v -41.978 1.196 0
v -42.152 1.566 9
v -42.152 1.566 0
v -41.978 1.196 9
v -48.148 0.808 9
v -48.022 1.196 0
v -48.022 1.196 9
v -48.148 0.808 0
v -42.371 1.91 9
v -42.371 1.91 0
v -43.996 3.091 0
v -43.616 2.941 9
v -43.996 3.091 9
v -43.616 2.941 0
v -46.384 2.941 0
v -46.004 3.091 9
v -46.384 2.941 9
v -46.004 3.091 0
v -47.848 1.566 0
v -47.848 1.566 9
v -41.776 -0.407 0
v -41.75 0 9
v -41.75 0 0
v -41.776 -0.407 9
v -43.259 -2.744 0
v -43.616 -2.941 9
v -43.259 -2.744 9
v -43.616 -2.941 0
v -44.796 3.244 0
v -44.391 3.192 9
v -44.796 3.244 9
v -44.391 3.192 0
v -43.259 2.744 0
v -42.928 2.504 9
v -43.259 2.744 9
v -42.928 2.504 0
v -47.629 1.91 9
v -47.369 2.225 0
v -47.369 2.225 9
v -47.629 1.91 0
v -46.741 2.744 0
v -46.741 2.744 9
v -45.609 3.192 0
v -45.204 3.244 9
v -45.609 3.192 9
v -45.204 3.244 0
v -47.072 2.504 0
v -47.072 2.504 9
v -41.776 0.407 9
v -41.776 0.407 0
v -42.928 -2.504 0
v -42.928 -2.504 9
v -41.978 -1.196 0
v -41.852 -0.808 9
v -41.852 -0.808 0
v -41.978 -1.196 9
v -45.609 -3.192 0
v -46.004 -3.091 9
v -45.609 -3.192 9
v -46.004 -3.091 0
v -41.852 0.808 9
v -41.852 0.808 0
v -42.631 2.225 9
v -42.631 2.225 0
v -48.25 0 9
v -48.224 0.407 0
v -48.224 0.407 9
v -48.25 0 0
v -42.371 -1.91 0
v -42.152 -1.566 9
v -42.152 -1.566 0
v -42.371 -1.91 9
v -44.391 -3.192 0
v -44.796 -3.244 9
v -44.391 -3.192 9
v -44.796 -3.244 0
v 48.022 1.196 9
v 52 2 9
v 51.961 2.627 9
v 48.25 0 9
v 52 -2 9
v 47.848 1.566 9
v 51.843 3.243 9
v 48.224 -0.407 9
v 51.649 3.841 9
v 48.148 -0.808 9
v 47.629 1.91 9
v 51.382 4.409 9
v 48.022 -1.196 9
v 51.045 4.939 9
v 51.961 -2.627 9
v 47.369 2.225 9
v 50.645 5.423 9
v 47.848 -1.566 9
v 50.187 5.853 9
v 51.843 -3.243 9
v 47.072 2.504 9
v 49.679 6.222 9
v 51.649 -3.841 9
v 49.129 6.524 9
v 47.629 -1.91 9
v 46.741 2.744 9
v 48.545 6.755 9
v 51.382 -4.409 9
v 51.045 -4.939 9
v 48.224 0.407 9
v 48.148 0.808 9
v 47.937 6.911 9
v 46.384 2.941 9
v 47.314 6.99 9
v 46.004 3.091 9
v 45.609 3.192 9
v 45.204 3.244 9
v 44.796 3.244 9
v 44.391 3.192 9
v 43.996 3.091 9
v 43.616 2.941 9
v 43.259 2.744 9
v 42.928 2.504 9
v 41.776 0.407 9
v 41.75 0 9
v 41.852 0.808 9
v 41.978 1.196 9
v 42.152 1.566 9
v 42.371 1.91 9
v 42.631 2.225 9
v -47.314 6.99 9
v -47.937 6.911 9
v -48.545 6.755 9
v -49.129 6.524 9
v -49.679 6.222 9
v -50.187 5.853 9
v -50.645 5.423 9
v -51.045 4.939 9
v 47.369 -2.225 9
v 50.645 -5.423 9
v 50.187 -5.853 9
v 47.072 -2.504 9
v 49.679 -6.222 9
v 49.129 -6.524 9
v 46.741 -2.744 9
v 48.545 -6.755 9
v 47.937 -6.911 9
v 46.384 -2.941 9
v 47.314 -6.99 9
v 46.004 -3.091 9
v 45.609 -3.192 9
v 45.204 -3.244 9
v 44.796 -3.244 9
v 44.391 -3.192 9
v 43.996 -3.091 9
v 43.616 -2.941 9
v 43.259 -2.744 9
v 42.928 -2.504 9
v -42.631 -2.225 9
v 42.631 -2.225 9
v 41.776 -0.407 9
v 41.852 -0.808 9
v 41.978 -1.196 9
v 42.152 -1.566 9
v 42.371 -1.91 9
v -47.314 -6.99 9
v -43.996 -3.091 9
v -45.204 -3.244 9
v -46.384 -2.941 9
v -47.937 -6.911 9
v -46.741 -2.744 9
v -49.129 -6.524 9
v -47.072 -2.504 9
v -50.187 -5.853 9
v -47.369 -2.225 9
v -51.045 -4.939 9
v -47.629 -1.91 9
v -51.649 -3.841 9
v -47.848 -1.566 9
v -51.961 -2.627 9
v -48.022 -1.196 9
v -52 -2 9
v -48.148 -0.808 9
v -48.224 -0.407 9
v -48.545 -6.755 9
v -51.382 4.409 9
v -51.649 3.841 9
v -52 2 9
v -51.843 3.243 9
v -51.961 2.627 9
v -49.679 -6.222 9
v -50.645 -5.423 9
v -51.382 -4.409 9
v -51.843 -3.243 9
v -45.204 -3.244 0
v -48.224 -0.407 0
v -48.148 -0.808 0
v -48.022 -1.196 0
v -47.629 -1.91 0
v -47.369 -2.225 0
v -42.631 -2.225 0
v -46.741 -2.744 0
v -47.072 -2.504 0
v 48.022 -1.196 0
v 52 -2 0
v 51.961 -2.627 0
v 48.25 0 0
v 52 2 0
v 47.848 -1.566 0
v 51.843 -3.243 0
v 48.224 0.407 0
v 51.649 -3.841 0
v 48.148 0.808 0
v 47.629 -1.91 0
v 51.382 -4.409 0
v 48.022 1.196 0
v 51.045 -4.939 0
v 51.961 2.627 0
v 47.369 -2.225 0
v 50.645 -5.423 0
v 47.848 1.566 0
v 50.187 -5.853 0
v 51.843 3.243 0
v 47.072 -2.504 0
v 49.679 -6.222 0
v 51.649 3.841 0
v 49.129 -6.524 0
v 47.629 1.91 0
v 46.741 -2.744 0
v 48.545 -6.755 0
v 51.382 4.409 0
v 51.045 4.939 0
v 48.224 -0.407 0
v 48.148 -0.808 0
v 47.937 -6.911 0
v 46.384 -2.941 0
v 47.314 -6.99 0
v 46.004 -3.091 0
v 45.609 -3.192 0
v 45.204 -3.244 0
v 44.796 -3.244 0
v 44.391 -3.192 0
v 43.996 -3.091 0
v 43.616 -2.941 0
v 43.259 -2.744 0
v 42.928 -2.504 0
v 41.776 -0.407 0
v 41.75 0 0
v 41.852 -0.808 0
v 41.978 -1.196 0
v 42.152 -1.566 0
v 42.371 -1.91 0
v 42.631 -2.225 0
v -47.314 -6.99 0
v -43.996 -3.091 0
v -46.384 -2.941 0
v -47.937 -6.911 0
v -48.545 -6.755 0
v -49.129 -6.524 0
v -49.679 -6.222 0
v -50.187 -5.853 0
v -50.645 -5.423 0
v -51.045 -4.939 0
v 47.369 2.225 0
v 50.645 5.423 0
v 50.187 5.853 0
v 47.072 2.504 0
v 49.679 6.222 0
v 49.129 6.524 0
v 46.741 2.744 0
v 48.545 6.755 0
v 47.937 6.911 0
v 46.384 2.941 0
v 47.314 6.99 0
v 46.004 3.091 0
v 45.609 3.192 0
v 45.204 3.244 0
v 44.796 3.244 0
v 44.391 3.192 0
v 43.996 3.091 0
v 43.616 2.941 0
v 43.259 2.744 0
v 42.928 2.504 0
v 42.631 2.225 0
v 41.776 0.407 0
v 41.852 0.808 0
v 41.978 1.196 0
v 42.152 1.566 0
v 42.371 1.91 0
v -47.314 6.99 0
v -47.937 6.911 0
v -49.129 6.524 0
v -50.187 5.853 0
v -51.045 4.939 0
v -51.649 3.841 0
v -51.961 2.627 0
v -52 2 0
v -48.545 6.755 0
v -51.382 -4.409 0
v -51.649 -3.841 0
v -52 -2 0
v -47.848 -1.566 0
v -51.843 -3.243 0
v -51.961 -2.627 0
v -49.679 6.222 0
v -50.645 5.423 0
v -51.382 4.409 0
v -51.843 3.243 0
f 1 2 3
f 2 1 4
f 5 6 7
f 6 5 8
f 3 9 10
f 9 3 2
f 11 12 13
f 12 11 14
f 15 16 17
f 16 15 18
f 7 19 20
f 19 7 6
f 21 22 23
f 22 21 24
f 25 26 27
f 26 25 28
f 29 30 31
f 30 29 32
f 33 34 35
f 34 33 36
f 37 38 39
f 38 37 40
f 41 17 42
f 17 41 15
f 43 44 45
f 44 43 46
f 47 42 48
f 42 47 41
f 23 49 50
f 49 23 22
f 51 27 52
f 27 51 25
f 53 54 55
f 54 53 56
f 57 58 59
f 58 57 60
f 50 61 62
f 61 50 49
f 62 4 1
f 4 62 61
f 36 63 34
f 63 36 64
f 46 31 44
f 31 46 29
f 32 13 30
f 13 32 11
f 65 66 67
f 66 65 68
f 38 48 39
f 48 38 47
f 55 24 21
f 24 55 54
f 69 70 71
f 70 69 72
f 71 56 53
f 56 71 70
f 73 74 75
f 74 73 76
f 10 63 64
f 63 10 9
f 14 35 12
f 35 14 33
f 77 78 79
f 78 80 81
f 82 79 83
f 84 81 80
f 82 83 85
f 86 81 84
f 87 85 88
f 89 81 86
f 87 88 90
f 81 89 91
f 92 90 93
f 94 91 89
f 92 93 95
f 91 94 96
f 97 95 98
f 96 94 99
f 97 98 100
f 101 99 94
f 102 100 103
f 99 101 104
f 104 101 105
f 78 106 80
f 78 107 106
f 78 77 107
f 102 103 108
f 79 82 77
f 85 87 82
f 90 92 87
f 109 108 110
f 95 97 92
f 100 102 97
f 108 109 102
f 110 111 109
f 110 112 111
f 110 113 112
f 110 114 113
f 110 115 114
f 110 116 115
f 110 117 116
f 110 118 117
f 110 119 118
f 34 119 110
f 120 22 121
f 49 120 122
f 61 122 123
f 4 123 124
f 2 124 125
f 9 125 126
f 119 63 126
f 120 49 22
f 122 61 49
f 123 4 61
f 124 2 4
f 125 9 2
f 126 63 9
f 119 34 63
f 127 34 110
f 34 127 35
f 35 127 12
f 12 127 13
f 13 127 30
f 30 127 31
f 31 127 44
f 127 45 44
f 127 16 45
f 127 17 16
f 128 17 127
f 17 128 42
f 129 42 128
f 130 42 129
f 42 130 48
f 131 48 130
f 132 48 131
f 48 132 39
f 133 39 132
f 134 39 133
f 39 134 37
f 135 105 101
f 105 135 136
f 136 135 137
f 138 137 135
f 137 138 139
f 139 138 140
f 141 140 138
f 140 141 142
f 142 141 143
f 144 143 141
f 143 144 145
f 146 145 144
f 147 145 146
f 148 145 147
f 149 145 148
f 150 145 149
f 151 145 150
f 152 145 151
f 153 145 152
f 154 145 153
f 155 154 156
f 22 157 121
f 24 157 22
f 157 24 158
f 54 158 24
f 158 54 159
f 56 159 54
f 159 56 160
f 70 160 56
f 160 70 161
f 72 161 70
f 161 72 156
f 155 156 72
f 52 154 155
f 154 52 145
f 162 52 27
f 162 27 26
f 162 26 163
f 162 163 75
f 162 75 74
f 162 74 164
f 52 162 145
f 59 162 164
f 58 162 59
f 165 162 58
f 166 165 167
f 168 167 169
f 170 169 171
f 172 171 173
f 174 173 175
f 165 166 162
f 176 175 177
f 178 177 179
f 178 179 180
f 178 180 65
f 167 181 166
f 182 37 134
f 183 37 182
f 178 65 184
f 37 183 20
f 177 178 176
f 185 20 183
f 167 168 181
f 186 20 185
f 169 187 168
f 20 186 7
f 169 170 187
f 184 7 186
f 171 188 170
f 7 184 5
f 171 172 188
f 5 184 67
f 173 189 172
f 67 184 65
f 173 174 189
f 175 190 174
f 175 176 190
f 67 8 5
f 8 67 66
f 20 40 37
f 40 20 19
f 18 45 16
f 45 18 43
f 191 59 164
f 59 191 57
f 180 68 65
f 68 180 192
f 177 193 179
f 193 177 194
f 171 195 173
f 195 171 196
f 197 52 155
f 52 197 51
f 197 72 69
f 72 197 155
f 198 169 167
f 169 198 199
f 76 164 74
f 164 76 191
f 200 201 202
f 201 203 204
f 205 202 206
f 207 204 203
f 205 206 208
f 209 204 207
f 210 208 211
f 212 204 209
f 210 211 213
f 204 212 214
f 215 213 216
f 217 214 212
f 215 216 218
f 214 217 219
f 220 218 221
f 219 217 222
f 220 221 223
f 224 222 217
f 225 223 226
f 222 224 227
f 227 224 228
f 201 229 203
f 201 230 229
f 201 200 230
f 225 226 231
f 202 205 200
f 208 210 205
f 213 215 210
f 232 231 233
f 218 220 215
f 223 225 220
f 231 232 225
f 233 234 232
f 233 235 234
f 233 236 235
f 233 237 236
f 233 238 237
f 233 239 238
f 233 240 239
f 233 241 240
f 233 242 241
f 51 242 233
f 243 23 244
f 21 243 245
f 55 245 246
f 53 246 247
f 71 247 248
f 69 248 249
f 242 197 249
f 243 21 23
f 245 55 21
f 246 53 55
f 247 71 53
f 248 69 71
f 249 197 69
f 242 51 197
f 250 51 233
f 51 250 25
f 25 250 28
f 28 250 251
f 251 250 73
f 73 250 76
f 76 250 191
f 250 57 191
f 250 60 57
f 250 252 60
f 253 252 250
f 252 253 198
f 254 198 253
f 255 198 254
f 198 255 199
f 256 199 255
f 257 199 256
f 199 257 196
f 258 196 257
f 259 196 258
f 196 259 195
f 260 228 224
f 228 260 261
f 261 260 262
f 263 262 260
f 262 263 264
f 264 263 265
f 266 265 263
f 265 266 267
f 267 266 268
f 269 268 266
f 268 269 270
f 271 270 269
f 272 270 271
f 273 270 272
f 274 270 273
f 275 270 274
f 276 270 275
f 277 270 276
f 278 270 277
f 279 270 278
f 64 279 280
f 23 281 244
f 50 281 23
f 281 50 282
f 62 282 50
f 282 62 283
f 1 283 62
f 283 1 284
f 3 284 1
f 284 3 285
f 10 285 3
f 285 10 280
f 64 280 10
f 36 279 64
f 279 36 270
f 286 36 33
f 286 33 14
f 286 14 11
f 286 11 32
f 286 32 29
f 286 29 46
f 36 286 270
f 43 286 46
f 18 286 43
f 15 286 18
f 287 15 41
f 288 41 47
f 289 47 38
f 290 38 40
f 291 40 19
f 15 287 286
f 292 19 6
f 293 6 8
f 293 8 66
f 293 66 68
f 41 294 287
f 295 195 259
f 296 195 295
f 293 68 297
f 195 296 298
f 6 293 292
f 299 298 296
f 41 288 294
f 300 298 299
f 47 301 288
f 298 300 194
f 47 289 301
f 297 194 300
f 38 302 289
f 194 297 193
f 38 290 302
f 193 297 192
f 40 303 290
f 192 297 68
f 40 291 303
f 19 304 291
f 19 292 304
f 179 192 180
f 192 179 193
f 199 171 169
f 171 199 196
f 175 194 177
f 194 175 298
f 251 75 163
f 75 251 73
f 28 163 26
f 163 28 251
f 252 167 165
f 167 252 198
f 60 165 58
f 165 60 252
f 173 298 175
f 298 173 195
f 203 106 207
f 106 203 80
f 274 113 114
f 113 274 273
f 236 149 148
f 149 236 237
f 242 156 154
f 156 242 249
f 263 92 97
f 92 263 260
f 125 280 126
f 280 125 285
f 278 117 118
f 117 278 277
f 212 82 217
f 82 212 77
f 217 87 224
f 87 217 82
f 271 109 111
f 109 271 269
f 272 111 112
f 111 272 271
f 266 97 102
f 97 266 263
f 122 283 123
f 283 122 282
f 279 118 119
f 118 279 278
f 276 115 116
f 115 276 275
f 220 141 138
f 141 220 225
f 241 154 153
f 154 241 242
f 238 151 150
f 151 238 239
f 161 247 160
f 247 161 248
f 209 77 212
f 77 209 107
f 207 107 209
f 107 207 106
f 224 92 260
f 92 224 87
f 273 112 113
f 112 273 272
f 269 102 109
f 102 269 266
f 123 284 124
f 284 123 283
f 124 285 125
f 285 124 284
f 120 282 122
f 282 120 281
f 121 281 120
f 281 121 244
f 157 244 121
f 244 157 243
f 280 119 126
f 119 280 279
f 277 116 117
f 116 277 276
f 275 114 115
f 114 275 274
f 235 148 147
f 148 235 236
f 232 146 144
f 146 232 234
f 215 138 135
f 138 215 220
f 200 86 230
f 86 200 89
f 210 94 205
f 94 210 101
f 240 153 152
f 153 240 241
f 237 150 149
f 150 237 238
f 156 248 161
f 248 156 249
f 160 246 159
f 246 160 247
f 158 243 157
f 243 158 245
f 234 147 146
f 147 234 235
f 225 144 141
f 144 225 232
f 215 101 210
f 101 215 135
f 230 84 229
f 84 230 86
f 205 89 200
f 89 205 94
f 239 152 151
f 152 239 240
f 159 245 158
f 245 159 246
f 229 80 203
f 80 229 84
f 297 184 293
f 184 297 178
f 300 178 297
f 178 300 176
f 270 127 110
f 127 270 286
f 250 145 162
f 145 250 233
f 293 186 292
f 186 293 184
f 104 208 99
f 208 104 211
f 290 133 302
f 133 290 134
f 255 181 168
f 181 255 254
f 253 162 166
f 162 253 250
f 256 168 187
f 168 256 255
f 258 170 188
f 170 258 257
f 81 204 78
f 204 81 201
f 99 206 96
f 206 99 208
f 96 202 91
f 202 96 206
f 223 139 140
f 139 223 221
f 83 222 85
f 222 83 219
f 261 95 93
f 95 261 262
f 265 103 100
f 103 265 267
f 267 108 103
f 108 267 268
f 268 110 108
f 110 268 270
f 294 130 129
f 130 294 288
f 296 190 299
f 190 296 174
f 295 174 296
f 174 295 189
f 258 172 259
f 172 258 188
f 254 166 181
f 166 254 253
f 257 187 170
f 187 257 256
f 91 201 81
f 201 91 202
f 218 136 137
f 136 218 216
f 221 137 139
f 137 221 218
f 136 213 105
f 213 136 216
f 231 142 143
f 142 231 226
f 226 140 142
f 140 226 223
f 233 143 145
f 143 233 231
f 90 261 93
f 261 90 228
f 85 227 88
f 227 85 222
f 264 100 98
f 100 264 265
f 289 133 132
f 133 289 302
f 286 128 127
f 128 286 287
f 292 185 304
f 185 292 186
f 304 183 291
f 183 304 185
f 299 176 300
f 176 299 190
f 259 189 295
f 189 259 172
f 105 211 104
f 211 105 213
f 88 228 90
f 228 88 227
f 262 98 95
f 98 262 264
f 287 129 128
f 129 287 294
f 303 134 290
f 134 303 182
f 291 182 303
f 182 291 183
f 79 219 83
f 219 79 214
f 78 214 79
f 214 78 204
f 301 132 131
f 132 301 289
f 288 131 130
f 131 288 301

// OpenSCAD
$fn = 50;


difference() {
	union() {
		hull() {
			translate(v = [-47.0000000000, 2.0000000000, 0]) {
				cylinder(h = 9, r = 5);
			}
			translate(v = [47.0000000000, 2.0000000000, 0]) {
				cylinder(h = 9, r = 5);
			}
			translate(v = [-47.0000000000, -2.0000000000, 0]) {
				cylinder(h = 9, r = 5);
			}
			translate(v = [47.0000000000, -2.0000000000, 0]) {
				cylinder(h = 9, r = 5);
			}
		}
	}
	union() {
		translate(v = [-45.0000000000, 0.0000000000, 0]) {
			cylinder(h = 9, r = 3.2500000000);
		}
		translate(v = [45.0000000000, 0.0000000000, 0]) {
			cylinder(h = 9, r = 3.2500000000);
		}
		translate(v = [-45.0000000000, 0.0000000000, 0]) {
			cylinder(h = 9, r = 1.8000000000);
		}
		translate(v = [45.0000000000, 0.0000000000, 0]) {
			cylinder(h = 9, r = 1.8000000000);
		}
		translate(v = [-45.0000000000, 0.0000000000, 0]) {
			cylinder(h = 9, r = 1.8000000000);
		}
		translate(v = [45.0000000000, 0.0000000000, 0]) {
			cylinder(h = 9, r = 1.8000000000);
		}
		translate(v = [-45.0000000000, 0.0000000000, 0]) {
			cylinder(h = 9, r = 1.8000000000);
		}
		translate(v = [45.0000000000, 0.0000000000, 0]) {
			cylinder(h = 9, r = 1.8000000000);
		}
	}
}
